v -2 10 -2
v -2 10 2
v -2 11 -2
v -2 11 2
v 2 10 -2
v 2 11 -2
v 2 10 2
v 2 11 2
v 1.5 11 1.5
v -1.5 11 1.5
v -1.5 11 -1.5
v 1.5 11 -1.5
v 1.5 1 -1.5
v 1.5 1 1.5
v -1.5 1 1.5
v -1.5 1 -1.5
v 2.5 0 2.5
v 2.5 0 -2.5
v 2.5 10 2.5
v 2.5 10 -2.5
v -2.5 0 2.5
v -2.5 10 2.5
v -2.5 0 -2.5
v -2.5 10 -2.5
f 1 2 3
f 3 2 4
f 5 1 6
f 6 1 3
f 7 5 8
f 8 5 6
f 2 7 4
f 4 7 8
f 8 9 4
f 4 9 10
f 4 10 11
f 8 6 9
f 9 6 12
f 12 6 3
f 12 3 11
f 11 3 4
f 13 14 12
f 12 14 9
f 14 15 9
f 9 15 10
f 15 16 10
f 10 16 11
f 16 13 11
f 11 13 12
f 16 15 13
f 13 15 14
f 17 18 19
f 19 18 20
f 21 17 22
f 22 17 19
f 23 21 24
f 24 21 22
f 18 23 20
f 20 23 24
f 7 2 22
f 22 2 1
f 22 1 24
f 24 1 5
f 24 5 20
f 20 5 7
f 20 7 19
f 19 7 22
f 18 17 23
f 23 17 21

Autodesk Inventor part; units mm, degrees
ref_plane "YZ Plane" through (0, 0, 0) normal (1, 0, 0) x (0, 1, 0)
ref_plane "XZ Plane" through (0, 0, 0) normal (0, 1, 0) x (-1, 0, 0)
ref_plane "XY Plane" through (0, 0, 0) normal (0, 0, 1) x (1, 0, 0)
sketch "Sketch1" plane through (0, 0, 0) normal (0, 1, 0) x (-1, 0, 0)
  line L0 (-2.5, 2.5) -> (2.5, 2.5)
  line L1 (2.5, 2.5) -> (2.5, -2.5)
  line L2 (2.5, -2.5) -> (-2.5, -2.5)
  line L3 (-2.5, -2.5) -> (-2.5, 2.5)
  line L4 (-2.5, 2.5) -> (2.5, -2.5) construction
  line L5 (2.5, 2.5) -> (-2.5, -2.5) construction
  point P0 (0, 0)
  dimension "d0" = 5
  dimension "d1" = 5
extrude "Extrusion1" add sketch "Sketch1" along normal blind 10
shell "Shell1" thickness 1 removed faces 1 at (-0.8333, 10, -0.8333)
sketch "Sketch2" plane through (0, 10, 0) normal (0, 1, 0) x (1, 0, 0)
  line L0 (1.5, 1.5) -> (1.5, -1.5) projected
  line L1 (1.5, -1.5) -> (-1.5, -1.5) projected
  line L2 (-1.5, -1.5) -> (-1.5, 1.5) projected
  line L3 (-1.5, 1.5) -> (1.5, 1.5) projected
  line L4 (2.5, 2.5) -> (-2.5, 2.5) projected
  line L5 (-2.5, 2.5) -> (-2.5, -2.5) projected
  line L6 (-2.5, -2.5) -> (2.5, -2.5) projected
  line L7 (2.5, -2.5) -> (2.5, 2.5) projected
  line L8 (-2, 2) -> (-2, -2)
  line L9 (-2, -2) -> (2, -2)
  line L10 (2, -2) -> (2, 2)
  line L11 (2, 2) -> (-2, 2)
  point P0 (0, 0)
  dimension "d5" = 0.5
extrude "Extrusion2" add sketch "Sketch2" along normal blind 1 contours L11 L10 L9 L8
properties part number "snapfit_v02"
